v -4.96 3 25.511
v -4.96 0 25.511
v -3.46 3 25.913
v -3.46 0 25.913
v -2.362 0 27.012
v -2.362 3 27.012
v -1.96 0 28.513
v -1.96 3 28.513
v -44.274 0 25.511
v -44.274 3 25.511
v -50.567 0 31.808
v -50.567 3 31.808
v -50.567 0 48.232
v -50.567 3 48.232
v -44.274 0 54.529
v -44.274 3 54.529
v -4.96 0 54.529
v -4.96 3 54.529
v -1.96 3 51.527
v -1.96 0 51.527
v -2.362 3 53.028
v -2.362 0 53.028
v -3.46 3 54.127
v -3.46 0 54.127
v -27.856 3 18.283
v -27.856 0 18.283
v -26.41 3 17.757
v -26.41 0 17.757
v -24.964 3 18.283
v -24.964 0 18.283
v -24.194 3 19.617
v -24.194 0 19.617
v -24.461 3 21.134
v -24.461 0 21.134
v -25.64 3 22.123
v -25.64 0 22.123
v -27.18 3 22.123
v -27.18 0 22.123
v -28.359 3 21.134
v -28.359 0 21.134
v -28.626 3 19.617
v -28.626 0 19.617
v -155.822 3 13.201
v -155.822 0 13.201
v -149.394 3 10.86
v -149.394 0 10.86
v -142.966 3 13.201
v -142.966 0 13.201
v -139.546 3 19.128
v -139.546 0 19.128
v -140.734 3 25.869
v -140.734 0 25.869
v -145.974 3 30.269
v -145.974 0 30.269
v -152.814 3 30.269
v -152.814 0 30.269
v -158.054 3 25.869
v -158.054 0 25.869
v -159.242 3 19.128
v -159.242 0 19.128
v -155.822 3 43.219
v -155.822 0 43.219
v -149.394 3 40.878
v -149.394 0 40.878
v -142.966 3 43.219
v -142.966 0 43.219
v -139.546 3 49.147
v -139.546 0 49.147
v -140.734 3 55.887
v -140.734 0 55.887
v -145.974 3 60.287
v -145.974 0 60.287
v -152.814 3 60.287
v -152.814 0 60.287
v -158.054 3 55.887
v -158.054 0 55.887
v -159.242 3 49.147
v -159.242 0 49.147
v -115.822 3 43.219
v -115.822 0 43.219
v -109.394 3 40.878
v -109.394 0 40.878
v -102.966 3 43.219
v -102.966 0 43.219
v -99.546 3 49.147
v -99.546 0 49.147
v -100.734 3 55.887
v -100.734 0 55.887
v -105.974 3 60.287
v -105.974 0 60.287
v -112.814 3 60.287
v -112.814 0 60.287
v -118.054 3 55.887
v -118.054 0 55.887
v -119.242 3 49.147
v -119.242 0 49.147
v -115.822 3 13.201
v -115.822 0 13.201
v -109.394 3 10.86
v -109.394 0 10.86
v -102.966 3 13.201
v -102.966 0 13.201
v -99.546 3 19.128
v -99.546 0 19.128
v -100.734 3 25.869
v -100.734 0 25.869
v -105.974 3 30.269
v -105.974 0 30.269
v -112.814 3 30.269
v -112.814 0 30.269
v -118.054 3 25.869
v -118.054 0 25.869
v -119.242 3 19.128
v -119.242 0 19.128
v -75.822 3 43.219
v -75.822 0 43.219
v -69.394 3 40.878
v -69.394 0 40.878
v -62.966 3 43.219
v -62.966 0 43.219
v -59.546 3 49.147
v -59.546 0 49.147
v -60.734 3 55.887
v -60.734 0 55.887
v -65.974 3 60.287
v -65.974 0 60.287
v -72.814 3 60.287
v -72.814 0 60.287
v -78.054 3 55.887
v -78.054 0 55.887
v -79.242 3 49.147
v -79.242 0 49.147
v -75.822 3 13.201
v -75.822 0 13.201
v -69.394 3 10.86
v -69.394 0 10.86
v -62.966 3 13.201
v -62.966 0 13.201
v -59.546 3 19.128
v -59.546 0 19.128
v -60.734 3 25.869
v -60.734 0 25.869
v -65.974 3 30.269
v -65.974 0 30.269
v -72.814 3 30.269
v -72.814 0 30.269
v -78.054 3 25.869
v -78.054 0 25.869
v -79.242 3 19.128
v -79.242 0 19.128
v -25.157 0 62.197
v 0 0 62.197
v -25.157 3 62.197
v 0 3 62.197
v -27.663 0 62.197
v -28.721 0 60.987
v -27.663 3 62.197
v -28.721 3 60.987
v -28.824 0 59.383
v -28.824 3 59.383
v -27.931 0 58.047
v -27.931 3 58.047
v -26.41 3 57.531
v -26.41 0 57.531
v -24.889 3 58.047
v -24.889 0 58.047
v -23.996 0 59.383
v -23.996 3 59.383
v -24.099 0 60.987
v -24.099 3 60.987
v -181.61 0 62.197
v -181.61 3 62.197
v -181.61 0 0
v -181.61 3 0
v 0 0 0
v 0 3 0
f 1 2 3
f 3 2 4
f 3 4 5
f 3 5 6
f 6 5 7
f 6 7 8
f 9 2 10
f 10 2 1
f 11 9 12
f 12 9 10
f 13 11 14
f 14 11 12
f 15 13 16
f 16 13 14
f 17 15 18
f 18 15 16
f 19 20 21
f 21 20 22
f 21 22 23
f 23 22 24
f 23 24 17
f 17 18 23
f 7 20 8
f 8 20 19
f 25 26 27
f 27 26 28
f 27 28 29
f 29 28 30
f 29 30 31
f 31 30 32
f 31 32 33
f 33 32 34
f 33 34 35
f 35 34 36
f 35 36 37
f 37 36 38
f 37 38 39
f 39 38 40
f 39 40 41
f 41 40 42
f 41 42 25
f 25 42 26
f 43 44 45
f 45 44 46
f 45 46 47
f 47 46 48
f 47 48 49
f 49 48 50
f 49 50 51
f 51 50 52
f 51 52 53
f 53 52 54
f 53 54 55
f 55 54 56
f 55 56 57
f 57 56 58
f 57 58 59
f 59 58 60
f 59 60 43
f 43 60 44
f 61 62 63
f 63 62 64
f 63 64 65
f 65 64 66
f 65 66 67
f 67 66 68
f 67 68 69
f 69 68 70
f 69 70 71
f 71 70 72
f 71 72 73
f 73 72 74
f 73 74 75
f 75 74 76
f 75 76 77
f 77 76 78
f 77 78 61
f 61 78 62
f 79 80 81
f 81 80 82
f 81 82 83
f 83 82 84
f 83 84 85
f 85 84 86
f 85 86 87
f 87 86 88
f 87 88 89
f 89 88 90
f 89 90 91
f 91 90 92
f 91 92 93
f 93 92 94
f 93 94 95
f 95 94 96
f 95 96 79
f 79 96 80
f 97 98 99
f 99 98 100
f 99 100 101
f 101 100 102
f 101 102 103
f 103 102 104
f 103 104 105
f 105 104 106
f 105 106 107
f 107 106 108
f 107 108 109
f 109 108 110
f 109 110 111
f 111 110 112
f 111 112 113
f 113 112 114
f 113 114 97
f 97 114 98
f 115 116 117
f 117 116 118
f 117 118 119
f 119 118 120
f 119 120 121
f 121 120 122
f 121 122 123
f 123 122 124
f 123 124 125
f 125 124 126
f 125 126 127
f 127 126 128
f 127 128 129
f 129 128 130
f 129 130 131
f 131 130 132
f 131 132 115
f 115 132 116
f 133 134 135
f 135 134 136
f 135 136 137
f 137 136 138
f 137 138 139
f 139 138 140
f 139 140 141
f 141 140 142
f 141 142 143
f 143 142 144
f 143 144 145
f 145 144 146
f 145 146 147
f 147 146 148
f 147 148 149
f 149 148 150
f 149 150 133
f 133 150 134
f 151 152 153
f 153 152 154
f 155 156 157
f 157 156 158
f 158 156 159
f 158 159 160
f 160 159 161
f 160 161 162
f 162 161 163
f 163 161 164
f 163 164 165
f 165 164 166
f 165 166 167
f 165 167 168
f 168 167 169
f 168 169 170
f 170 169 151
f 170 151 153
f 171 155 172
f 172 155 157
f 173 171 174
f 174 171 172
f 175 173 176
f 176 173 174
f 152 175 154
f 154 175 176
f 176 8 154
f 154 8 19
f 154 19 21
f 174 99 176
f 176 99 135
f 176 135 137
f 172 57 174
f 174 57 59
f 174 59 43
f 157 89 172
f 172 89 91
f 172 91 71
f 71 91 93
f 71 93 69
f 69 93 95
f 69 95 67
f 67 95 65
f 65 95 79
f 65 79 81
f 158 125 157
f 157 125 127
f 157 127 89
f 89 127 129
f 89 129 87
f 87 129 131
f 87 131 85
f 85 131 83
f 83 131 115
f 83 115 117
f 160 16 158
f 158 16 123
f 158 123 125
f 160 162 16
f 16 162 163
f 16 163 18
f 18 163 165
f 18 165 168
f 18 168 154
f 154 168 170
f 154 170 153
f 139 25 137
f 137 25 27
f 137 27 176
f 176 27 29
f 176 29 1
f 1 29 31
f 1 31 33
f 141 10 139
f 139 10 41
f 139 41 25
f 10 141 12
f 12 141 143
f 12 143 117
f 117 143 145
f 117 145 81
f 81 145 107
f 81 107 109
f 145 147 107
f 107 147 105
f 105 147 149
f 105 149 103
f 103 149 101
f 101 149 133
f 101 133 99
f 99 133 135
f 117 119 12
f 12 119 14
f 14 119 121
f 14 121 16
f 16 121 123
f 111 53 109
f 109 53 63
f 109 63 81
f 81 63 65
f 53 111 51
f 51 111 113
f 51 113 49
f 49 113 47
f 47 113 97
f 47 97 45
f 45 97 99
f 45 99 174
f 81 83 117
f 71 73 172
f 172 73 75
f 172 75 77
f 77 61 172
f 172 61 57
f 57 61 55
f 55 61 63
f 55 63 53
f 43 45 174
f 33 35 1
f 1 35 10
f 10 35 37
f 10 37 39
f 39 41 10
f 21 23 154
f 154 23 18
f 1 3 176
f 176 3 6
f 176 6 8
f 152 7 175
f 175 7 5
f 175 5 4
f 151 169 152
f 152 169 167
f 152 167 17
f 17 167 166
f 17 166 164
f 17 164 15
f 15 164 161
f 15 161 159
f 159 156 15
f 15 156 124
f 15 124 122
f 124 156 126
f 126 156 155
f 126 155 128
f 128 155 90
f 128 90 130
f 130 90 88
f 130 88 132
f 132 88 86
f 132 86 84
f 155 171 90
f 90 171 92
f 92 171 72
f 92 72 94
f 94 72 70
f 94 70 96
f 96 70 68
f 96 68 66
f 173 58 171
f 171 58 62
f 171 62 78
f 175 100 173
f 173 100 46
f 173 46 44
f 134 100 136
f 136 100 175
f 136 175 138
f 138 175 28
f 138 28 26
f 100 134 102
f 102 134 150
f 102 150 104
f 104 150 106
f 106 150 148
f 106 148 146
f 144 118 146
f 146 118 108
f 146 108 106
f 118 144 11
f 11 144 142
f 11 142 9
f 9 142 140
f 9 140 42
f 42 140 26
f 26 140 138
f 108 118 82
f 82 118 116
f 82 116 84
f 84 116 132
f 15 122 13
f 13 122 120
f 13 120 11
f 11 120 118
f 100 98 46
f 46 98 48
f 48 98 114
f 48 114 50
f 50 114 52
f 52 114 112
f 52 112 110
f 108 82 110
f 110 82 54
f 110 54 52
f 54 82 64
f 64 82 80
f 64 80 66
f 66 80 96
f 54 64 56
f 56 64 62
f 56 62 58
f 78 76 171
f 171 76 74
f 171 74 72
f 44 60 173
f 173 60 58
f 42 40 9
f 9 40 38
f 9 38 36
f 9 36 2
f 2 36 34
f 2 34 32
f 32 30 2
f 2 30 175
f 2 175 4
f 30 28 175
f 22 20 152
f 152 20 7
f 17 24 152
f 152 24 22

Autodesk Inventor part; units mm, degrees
ref_plane "YZ Plane" through (0, 0, 0) normal (1, 0, 0) x (0, 1, 0)
ref_plane "XZ Plane" through (0, 0, 0) normal (0, 1, 0) x (-1, 0, 0)
ref_plane "XY Plane" through (0, 0, 0) normal (0, 0, 1) x (1, 0, 0)
sketch "Sketch1" plane through (0, 0, 0) normal (0, 1, 0) x (-1, 0, 0)
  line L0 (25.1574, 62.1971) -> (0, 62.1971)
  line L1 (0, 62.1971) -> (0, 0)
  line L2 (0, 0) -> (181.61, 0)
  line L3 (181.61, 0) -> (181.61, 62.1971)
  line L4 (181.61, 62.1971) -> (27.6626, 62.1971)
  line L5 (4.96, 54.5289) -> (44.2742, 54.5289)
  line L6 (44.2742, 54.5289) -> (50.5671, 48.2322)
  line L7 (50.5671, 48.2322) -> (50.5671, 31.808)
  line L8 (50.5671, 31.808) -> (44.2742, 25.5113)
  line L9 (44.2742, 25.5113) -> (4.96, 25.5113)
  ellipse E0 centre (69.3942, 20.866) end of major axis (69.3942, 10.8599) minor radius 10
  ellipse E1 centre (69.3942, 50.8843) end of major axis (69.3942, 40.8782) minor radius 10
  ellipse E2 centre (109.3942, 20.866) end of major axis (109.3942, 10.8599) minor radius 10
  ellipse E3 centre (109.3942, 50.8843) end of major axis (109.3942, 40.8782) minor radius 10
  ellipse E4 centre (149.3942, 50.8843) end of major axis (149.3942, 40.8782) minor radius 10
  ellipse E5 centre (149.3942, 20.866) end of major axis (149.3942, 10.8599) minor radius 10
  ellipse E6 centre (26.41, 60.0323) end of major axis (26.41, 57.5308) minor radius 2.5 (25.1574, 62.1971) -> (27.6626, 62.1971) ccw
  ellipse E7 centre (4.96, 51.5271) end of major axis (4.96, 48.5253) minor radius 3 (4.96, 54.5289) -> (1.96, 51.5271) ccw
  ellipse E8 centre (4.96, 28.5131) end of major axis (4.96, 25.5113) minor radius 3 (1.96, 28.5131) -> (4.96, 25.5113) ccw
  line L10 (1.96, 28.5131) -> (1.96, 51.5271)
  ellipse E9 centre (26.41, 20.0079) end of major axis (26.41, 17.7565) minor radius 2.25
  point P0 (27.6626, 62.1971)
extrude "Extrusion1" add sketch "Sketch1" along normal blind 3
properties part number "EboxSide"
